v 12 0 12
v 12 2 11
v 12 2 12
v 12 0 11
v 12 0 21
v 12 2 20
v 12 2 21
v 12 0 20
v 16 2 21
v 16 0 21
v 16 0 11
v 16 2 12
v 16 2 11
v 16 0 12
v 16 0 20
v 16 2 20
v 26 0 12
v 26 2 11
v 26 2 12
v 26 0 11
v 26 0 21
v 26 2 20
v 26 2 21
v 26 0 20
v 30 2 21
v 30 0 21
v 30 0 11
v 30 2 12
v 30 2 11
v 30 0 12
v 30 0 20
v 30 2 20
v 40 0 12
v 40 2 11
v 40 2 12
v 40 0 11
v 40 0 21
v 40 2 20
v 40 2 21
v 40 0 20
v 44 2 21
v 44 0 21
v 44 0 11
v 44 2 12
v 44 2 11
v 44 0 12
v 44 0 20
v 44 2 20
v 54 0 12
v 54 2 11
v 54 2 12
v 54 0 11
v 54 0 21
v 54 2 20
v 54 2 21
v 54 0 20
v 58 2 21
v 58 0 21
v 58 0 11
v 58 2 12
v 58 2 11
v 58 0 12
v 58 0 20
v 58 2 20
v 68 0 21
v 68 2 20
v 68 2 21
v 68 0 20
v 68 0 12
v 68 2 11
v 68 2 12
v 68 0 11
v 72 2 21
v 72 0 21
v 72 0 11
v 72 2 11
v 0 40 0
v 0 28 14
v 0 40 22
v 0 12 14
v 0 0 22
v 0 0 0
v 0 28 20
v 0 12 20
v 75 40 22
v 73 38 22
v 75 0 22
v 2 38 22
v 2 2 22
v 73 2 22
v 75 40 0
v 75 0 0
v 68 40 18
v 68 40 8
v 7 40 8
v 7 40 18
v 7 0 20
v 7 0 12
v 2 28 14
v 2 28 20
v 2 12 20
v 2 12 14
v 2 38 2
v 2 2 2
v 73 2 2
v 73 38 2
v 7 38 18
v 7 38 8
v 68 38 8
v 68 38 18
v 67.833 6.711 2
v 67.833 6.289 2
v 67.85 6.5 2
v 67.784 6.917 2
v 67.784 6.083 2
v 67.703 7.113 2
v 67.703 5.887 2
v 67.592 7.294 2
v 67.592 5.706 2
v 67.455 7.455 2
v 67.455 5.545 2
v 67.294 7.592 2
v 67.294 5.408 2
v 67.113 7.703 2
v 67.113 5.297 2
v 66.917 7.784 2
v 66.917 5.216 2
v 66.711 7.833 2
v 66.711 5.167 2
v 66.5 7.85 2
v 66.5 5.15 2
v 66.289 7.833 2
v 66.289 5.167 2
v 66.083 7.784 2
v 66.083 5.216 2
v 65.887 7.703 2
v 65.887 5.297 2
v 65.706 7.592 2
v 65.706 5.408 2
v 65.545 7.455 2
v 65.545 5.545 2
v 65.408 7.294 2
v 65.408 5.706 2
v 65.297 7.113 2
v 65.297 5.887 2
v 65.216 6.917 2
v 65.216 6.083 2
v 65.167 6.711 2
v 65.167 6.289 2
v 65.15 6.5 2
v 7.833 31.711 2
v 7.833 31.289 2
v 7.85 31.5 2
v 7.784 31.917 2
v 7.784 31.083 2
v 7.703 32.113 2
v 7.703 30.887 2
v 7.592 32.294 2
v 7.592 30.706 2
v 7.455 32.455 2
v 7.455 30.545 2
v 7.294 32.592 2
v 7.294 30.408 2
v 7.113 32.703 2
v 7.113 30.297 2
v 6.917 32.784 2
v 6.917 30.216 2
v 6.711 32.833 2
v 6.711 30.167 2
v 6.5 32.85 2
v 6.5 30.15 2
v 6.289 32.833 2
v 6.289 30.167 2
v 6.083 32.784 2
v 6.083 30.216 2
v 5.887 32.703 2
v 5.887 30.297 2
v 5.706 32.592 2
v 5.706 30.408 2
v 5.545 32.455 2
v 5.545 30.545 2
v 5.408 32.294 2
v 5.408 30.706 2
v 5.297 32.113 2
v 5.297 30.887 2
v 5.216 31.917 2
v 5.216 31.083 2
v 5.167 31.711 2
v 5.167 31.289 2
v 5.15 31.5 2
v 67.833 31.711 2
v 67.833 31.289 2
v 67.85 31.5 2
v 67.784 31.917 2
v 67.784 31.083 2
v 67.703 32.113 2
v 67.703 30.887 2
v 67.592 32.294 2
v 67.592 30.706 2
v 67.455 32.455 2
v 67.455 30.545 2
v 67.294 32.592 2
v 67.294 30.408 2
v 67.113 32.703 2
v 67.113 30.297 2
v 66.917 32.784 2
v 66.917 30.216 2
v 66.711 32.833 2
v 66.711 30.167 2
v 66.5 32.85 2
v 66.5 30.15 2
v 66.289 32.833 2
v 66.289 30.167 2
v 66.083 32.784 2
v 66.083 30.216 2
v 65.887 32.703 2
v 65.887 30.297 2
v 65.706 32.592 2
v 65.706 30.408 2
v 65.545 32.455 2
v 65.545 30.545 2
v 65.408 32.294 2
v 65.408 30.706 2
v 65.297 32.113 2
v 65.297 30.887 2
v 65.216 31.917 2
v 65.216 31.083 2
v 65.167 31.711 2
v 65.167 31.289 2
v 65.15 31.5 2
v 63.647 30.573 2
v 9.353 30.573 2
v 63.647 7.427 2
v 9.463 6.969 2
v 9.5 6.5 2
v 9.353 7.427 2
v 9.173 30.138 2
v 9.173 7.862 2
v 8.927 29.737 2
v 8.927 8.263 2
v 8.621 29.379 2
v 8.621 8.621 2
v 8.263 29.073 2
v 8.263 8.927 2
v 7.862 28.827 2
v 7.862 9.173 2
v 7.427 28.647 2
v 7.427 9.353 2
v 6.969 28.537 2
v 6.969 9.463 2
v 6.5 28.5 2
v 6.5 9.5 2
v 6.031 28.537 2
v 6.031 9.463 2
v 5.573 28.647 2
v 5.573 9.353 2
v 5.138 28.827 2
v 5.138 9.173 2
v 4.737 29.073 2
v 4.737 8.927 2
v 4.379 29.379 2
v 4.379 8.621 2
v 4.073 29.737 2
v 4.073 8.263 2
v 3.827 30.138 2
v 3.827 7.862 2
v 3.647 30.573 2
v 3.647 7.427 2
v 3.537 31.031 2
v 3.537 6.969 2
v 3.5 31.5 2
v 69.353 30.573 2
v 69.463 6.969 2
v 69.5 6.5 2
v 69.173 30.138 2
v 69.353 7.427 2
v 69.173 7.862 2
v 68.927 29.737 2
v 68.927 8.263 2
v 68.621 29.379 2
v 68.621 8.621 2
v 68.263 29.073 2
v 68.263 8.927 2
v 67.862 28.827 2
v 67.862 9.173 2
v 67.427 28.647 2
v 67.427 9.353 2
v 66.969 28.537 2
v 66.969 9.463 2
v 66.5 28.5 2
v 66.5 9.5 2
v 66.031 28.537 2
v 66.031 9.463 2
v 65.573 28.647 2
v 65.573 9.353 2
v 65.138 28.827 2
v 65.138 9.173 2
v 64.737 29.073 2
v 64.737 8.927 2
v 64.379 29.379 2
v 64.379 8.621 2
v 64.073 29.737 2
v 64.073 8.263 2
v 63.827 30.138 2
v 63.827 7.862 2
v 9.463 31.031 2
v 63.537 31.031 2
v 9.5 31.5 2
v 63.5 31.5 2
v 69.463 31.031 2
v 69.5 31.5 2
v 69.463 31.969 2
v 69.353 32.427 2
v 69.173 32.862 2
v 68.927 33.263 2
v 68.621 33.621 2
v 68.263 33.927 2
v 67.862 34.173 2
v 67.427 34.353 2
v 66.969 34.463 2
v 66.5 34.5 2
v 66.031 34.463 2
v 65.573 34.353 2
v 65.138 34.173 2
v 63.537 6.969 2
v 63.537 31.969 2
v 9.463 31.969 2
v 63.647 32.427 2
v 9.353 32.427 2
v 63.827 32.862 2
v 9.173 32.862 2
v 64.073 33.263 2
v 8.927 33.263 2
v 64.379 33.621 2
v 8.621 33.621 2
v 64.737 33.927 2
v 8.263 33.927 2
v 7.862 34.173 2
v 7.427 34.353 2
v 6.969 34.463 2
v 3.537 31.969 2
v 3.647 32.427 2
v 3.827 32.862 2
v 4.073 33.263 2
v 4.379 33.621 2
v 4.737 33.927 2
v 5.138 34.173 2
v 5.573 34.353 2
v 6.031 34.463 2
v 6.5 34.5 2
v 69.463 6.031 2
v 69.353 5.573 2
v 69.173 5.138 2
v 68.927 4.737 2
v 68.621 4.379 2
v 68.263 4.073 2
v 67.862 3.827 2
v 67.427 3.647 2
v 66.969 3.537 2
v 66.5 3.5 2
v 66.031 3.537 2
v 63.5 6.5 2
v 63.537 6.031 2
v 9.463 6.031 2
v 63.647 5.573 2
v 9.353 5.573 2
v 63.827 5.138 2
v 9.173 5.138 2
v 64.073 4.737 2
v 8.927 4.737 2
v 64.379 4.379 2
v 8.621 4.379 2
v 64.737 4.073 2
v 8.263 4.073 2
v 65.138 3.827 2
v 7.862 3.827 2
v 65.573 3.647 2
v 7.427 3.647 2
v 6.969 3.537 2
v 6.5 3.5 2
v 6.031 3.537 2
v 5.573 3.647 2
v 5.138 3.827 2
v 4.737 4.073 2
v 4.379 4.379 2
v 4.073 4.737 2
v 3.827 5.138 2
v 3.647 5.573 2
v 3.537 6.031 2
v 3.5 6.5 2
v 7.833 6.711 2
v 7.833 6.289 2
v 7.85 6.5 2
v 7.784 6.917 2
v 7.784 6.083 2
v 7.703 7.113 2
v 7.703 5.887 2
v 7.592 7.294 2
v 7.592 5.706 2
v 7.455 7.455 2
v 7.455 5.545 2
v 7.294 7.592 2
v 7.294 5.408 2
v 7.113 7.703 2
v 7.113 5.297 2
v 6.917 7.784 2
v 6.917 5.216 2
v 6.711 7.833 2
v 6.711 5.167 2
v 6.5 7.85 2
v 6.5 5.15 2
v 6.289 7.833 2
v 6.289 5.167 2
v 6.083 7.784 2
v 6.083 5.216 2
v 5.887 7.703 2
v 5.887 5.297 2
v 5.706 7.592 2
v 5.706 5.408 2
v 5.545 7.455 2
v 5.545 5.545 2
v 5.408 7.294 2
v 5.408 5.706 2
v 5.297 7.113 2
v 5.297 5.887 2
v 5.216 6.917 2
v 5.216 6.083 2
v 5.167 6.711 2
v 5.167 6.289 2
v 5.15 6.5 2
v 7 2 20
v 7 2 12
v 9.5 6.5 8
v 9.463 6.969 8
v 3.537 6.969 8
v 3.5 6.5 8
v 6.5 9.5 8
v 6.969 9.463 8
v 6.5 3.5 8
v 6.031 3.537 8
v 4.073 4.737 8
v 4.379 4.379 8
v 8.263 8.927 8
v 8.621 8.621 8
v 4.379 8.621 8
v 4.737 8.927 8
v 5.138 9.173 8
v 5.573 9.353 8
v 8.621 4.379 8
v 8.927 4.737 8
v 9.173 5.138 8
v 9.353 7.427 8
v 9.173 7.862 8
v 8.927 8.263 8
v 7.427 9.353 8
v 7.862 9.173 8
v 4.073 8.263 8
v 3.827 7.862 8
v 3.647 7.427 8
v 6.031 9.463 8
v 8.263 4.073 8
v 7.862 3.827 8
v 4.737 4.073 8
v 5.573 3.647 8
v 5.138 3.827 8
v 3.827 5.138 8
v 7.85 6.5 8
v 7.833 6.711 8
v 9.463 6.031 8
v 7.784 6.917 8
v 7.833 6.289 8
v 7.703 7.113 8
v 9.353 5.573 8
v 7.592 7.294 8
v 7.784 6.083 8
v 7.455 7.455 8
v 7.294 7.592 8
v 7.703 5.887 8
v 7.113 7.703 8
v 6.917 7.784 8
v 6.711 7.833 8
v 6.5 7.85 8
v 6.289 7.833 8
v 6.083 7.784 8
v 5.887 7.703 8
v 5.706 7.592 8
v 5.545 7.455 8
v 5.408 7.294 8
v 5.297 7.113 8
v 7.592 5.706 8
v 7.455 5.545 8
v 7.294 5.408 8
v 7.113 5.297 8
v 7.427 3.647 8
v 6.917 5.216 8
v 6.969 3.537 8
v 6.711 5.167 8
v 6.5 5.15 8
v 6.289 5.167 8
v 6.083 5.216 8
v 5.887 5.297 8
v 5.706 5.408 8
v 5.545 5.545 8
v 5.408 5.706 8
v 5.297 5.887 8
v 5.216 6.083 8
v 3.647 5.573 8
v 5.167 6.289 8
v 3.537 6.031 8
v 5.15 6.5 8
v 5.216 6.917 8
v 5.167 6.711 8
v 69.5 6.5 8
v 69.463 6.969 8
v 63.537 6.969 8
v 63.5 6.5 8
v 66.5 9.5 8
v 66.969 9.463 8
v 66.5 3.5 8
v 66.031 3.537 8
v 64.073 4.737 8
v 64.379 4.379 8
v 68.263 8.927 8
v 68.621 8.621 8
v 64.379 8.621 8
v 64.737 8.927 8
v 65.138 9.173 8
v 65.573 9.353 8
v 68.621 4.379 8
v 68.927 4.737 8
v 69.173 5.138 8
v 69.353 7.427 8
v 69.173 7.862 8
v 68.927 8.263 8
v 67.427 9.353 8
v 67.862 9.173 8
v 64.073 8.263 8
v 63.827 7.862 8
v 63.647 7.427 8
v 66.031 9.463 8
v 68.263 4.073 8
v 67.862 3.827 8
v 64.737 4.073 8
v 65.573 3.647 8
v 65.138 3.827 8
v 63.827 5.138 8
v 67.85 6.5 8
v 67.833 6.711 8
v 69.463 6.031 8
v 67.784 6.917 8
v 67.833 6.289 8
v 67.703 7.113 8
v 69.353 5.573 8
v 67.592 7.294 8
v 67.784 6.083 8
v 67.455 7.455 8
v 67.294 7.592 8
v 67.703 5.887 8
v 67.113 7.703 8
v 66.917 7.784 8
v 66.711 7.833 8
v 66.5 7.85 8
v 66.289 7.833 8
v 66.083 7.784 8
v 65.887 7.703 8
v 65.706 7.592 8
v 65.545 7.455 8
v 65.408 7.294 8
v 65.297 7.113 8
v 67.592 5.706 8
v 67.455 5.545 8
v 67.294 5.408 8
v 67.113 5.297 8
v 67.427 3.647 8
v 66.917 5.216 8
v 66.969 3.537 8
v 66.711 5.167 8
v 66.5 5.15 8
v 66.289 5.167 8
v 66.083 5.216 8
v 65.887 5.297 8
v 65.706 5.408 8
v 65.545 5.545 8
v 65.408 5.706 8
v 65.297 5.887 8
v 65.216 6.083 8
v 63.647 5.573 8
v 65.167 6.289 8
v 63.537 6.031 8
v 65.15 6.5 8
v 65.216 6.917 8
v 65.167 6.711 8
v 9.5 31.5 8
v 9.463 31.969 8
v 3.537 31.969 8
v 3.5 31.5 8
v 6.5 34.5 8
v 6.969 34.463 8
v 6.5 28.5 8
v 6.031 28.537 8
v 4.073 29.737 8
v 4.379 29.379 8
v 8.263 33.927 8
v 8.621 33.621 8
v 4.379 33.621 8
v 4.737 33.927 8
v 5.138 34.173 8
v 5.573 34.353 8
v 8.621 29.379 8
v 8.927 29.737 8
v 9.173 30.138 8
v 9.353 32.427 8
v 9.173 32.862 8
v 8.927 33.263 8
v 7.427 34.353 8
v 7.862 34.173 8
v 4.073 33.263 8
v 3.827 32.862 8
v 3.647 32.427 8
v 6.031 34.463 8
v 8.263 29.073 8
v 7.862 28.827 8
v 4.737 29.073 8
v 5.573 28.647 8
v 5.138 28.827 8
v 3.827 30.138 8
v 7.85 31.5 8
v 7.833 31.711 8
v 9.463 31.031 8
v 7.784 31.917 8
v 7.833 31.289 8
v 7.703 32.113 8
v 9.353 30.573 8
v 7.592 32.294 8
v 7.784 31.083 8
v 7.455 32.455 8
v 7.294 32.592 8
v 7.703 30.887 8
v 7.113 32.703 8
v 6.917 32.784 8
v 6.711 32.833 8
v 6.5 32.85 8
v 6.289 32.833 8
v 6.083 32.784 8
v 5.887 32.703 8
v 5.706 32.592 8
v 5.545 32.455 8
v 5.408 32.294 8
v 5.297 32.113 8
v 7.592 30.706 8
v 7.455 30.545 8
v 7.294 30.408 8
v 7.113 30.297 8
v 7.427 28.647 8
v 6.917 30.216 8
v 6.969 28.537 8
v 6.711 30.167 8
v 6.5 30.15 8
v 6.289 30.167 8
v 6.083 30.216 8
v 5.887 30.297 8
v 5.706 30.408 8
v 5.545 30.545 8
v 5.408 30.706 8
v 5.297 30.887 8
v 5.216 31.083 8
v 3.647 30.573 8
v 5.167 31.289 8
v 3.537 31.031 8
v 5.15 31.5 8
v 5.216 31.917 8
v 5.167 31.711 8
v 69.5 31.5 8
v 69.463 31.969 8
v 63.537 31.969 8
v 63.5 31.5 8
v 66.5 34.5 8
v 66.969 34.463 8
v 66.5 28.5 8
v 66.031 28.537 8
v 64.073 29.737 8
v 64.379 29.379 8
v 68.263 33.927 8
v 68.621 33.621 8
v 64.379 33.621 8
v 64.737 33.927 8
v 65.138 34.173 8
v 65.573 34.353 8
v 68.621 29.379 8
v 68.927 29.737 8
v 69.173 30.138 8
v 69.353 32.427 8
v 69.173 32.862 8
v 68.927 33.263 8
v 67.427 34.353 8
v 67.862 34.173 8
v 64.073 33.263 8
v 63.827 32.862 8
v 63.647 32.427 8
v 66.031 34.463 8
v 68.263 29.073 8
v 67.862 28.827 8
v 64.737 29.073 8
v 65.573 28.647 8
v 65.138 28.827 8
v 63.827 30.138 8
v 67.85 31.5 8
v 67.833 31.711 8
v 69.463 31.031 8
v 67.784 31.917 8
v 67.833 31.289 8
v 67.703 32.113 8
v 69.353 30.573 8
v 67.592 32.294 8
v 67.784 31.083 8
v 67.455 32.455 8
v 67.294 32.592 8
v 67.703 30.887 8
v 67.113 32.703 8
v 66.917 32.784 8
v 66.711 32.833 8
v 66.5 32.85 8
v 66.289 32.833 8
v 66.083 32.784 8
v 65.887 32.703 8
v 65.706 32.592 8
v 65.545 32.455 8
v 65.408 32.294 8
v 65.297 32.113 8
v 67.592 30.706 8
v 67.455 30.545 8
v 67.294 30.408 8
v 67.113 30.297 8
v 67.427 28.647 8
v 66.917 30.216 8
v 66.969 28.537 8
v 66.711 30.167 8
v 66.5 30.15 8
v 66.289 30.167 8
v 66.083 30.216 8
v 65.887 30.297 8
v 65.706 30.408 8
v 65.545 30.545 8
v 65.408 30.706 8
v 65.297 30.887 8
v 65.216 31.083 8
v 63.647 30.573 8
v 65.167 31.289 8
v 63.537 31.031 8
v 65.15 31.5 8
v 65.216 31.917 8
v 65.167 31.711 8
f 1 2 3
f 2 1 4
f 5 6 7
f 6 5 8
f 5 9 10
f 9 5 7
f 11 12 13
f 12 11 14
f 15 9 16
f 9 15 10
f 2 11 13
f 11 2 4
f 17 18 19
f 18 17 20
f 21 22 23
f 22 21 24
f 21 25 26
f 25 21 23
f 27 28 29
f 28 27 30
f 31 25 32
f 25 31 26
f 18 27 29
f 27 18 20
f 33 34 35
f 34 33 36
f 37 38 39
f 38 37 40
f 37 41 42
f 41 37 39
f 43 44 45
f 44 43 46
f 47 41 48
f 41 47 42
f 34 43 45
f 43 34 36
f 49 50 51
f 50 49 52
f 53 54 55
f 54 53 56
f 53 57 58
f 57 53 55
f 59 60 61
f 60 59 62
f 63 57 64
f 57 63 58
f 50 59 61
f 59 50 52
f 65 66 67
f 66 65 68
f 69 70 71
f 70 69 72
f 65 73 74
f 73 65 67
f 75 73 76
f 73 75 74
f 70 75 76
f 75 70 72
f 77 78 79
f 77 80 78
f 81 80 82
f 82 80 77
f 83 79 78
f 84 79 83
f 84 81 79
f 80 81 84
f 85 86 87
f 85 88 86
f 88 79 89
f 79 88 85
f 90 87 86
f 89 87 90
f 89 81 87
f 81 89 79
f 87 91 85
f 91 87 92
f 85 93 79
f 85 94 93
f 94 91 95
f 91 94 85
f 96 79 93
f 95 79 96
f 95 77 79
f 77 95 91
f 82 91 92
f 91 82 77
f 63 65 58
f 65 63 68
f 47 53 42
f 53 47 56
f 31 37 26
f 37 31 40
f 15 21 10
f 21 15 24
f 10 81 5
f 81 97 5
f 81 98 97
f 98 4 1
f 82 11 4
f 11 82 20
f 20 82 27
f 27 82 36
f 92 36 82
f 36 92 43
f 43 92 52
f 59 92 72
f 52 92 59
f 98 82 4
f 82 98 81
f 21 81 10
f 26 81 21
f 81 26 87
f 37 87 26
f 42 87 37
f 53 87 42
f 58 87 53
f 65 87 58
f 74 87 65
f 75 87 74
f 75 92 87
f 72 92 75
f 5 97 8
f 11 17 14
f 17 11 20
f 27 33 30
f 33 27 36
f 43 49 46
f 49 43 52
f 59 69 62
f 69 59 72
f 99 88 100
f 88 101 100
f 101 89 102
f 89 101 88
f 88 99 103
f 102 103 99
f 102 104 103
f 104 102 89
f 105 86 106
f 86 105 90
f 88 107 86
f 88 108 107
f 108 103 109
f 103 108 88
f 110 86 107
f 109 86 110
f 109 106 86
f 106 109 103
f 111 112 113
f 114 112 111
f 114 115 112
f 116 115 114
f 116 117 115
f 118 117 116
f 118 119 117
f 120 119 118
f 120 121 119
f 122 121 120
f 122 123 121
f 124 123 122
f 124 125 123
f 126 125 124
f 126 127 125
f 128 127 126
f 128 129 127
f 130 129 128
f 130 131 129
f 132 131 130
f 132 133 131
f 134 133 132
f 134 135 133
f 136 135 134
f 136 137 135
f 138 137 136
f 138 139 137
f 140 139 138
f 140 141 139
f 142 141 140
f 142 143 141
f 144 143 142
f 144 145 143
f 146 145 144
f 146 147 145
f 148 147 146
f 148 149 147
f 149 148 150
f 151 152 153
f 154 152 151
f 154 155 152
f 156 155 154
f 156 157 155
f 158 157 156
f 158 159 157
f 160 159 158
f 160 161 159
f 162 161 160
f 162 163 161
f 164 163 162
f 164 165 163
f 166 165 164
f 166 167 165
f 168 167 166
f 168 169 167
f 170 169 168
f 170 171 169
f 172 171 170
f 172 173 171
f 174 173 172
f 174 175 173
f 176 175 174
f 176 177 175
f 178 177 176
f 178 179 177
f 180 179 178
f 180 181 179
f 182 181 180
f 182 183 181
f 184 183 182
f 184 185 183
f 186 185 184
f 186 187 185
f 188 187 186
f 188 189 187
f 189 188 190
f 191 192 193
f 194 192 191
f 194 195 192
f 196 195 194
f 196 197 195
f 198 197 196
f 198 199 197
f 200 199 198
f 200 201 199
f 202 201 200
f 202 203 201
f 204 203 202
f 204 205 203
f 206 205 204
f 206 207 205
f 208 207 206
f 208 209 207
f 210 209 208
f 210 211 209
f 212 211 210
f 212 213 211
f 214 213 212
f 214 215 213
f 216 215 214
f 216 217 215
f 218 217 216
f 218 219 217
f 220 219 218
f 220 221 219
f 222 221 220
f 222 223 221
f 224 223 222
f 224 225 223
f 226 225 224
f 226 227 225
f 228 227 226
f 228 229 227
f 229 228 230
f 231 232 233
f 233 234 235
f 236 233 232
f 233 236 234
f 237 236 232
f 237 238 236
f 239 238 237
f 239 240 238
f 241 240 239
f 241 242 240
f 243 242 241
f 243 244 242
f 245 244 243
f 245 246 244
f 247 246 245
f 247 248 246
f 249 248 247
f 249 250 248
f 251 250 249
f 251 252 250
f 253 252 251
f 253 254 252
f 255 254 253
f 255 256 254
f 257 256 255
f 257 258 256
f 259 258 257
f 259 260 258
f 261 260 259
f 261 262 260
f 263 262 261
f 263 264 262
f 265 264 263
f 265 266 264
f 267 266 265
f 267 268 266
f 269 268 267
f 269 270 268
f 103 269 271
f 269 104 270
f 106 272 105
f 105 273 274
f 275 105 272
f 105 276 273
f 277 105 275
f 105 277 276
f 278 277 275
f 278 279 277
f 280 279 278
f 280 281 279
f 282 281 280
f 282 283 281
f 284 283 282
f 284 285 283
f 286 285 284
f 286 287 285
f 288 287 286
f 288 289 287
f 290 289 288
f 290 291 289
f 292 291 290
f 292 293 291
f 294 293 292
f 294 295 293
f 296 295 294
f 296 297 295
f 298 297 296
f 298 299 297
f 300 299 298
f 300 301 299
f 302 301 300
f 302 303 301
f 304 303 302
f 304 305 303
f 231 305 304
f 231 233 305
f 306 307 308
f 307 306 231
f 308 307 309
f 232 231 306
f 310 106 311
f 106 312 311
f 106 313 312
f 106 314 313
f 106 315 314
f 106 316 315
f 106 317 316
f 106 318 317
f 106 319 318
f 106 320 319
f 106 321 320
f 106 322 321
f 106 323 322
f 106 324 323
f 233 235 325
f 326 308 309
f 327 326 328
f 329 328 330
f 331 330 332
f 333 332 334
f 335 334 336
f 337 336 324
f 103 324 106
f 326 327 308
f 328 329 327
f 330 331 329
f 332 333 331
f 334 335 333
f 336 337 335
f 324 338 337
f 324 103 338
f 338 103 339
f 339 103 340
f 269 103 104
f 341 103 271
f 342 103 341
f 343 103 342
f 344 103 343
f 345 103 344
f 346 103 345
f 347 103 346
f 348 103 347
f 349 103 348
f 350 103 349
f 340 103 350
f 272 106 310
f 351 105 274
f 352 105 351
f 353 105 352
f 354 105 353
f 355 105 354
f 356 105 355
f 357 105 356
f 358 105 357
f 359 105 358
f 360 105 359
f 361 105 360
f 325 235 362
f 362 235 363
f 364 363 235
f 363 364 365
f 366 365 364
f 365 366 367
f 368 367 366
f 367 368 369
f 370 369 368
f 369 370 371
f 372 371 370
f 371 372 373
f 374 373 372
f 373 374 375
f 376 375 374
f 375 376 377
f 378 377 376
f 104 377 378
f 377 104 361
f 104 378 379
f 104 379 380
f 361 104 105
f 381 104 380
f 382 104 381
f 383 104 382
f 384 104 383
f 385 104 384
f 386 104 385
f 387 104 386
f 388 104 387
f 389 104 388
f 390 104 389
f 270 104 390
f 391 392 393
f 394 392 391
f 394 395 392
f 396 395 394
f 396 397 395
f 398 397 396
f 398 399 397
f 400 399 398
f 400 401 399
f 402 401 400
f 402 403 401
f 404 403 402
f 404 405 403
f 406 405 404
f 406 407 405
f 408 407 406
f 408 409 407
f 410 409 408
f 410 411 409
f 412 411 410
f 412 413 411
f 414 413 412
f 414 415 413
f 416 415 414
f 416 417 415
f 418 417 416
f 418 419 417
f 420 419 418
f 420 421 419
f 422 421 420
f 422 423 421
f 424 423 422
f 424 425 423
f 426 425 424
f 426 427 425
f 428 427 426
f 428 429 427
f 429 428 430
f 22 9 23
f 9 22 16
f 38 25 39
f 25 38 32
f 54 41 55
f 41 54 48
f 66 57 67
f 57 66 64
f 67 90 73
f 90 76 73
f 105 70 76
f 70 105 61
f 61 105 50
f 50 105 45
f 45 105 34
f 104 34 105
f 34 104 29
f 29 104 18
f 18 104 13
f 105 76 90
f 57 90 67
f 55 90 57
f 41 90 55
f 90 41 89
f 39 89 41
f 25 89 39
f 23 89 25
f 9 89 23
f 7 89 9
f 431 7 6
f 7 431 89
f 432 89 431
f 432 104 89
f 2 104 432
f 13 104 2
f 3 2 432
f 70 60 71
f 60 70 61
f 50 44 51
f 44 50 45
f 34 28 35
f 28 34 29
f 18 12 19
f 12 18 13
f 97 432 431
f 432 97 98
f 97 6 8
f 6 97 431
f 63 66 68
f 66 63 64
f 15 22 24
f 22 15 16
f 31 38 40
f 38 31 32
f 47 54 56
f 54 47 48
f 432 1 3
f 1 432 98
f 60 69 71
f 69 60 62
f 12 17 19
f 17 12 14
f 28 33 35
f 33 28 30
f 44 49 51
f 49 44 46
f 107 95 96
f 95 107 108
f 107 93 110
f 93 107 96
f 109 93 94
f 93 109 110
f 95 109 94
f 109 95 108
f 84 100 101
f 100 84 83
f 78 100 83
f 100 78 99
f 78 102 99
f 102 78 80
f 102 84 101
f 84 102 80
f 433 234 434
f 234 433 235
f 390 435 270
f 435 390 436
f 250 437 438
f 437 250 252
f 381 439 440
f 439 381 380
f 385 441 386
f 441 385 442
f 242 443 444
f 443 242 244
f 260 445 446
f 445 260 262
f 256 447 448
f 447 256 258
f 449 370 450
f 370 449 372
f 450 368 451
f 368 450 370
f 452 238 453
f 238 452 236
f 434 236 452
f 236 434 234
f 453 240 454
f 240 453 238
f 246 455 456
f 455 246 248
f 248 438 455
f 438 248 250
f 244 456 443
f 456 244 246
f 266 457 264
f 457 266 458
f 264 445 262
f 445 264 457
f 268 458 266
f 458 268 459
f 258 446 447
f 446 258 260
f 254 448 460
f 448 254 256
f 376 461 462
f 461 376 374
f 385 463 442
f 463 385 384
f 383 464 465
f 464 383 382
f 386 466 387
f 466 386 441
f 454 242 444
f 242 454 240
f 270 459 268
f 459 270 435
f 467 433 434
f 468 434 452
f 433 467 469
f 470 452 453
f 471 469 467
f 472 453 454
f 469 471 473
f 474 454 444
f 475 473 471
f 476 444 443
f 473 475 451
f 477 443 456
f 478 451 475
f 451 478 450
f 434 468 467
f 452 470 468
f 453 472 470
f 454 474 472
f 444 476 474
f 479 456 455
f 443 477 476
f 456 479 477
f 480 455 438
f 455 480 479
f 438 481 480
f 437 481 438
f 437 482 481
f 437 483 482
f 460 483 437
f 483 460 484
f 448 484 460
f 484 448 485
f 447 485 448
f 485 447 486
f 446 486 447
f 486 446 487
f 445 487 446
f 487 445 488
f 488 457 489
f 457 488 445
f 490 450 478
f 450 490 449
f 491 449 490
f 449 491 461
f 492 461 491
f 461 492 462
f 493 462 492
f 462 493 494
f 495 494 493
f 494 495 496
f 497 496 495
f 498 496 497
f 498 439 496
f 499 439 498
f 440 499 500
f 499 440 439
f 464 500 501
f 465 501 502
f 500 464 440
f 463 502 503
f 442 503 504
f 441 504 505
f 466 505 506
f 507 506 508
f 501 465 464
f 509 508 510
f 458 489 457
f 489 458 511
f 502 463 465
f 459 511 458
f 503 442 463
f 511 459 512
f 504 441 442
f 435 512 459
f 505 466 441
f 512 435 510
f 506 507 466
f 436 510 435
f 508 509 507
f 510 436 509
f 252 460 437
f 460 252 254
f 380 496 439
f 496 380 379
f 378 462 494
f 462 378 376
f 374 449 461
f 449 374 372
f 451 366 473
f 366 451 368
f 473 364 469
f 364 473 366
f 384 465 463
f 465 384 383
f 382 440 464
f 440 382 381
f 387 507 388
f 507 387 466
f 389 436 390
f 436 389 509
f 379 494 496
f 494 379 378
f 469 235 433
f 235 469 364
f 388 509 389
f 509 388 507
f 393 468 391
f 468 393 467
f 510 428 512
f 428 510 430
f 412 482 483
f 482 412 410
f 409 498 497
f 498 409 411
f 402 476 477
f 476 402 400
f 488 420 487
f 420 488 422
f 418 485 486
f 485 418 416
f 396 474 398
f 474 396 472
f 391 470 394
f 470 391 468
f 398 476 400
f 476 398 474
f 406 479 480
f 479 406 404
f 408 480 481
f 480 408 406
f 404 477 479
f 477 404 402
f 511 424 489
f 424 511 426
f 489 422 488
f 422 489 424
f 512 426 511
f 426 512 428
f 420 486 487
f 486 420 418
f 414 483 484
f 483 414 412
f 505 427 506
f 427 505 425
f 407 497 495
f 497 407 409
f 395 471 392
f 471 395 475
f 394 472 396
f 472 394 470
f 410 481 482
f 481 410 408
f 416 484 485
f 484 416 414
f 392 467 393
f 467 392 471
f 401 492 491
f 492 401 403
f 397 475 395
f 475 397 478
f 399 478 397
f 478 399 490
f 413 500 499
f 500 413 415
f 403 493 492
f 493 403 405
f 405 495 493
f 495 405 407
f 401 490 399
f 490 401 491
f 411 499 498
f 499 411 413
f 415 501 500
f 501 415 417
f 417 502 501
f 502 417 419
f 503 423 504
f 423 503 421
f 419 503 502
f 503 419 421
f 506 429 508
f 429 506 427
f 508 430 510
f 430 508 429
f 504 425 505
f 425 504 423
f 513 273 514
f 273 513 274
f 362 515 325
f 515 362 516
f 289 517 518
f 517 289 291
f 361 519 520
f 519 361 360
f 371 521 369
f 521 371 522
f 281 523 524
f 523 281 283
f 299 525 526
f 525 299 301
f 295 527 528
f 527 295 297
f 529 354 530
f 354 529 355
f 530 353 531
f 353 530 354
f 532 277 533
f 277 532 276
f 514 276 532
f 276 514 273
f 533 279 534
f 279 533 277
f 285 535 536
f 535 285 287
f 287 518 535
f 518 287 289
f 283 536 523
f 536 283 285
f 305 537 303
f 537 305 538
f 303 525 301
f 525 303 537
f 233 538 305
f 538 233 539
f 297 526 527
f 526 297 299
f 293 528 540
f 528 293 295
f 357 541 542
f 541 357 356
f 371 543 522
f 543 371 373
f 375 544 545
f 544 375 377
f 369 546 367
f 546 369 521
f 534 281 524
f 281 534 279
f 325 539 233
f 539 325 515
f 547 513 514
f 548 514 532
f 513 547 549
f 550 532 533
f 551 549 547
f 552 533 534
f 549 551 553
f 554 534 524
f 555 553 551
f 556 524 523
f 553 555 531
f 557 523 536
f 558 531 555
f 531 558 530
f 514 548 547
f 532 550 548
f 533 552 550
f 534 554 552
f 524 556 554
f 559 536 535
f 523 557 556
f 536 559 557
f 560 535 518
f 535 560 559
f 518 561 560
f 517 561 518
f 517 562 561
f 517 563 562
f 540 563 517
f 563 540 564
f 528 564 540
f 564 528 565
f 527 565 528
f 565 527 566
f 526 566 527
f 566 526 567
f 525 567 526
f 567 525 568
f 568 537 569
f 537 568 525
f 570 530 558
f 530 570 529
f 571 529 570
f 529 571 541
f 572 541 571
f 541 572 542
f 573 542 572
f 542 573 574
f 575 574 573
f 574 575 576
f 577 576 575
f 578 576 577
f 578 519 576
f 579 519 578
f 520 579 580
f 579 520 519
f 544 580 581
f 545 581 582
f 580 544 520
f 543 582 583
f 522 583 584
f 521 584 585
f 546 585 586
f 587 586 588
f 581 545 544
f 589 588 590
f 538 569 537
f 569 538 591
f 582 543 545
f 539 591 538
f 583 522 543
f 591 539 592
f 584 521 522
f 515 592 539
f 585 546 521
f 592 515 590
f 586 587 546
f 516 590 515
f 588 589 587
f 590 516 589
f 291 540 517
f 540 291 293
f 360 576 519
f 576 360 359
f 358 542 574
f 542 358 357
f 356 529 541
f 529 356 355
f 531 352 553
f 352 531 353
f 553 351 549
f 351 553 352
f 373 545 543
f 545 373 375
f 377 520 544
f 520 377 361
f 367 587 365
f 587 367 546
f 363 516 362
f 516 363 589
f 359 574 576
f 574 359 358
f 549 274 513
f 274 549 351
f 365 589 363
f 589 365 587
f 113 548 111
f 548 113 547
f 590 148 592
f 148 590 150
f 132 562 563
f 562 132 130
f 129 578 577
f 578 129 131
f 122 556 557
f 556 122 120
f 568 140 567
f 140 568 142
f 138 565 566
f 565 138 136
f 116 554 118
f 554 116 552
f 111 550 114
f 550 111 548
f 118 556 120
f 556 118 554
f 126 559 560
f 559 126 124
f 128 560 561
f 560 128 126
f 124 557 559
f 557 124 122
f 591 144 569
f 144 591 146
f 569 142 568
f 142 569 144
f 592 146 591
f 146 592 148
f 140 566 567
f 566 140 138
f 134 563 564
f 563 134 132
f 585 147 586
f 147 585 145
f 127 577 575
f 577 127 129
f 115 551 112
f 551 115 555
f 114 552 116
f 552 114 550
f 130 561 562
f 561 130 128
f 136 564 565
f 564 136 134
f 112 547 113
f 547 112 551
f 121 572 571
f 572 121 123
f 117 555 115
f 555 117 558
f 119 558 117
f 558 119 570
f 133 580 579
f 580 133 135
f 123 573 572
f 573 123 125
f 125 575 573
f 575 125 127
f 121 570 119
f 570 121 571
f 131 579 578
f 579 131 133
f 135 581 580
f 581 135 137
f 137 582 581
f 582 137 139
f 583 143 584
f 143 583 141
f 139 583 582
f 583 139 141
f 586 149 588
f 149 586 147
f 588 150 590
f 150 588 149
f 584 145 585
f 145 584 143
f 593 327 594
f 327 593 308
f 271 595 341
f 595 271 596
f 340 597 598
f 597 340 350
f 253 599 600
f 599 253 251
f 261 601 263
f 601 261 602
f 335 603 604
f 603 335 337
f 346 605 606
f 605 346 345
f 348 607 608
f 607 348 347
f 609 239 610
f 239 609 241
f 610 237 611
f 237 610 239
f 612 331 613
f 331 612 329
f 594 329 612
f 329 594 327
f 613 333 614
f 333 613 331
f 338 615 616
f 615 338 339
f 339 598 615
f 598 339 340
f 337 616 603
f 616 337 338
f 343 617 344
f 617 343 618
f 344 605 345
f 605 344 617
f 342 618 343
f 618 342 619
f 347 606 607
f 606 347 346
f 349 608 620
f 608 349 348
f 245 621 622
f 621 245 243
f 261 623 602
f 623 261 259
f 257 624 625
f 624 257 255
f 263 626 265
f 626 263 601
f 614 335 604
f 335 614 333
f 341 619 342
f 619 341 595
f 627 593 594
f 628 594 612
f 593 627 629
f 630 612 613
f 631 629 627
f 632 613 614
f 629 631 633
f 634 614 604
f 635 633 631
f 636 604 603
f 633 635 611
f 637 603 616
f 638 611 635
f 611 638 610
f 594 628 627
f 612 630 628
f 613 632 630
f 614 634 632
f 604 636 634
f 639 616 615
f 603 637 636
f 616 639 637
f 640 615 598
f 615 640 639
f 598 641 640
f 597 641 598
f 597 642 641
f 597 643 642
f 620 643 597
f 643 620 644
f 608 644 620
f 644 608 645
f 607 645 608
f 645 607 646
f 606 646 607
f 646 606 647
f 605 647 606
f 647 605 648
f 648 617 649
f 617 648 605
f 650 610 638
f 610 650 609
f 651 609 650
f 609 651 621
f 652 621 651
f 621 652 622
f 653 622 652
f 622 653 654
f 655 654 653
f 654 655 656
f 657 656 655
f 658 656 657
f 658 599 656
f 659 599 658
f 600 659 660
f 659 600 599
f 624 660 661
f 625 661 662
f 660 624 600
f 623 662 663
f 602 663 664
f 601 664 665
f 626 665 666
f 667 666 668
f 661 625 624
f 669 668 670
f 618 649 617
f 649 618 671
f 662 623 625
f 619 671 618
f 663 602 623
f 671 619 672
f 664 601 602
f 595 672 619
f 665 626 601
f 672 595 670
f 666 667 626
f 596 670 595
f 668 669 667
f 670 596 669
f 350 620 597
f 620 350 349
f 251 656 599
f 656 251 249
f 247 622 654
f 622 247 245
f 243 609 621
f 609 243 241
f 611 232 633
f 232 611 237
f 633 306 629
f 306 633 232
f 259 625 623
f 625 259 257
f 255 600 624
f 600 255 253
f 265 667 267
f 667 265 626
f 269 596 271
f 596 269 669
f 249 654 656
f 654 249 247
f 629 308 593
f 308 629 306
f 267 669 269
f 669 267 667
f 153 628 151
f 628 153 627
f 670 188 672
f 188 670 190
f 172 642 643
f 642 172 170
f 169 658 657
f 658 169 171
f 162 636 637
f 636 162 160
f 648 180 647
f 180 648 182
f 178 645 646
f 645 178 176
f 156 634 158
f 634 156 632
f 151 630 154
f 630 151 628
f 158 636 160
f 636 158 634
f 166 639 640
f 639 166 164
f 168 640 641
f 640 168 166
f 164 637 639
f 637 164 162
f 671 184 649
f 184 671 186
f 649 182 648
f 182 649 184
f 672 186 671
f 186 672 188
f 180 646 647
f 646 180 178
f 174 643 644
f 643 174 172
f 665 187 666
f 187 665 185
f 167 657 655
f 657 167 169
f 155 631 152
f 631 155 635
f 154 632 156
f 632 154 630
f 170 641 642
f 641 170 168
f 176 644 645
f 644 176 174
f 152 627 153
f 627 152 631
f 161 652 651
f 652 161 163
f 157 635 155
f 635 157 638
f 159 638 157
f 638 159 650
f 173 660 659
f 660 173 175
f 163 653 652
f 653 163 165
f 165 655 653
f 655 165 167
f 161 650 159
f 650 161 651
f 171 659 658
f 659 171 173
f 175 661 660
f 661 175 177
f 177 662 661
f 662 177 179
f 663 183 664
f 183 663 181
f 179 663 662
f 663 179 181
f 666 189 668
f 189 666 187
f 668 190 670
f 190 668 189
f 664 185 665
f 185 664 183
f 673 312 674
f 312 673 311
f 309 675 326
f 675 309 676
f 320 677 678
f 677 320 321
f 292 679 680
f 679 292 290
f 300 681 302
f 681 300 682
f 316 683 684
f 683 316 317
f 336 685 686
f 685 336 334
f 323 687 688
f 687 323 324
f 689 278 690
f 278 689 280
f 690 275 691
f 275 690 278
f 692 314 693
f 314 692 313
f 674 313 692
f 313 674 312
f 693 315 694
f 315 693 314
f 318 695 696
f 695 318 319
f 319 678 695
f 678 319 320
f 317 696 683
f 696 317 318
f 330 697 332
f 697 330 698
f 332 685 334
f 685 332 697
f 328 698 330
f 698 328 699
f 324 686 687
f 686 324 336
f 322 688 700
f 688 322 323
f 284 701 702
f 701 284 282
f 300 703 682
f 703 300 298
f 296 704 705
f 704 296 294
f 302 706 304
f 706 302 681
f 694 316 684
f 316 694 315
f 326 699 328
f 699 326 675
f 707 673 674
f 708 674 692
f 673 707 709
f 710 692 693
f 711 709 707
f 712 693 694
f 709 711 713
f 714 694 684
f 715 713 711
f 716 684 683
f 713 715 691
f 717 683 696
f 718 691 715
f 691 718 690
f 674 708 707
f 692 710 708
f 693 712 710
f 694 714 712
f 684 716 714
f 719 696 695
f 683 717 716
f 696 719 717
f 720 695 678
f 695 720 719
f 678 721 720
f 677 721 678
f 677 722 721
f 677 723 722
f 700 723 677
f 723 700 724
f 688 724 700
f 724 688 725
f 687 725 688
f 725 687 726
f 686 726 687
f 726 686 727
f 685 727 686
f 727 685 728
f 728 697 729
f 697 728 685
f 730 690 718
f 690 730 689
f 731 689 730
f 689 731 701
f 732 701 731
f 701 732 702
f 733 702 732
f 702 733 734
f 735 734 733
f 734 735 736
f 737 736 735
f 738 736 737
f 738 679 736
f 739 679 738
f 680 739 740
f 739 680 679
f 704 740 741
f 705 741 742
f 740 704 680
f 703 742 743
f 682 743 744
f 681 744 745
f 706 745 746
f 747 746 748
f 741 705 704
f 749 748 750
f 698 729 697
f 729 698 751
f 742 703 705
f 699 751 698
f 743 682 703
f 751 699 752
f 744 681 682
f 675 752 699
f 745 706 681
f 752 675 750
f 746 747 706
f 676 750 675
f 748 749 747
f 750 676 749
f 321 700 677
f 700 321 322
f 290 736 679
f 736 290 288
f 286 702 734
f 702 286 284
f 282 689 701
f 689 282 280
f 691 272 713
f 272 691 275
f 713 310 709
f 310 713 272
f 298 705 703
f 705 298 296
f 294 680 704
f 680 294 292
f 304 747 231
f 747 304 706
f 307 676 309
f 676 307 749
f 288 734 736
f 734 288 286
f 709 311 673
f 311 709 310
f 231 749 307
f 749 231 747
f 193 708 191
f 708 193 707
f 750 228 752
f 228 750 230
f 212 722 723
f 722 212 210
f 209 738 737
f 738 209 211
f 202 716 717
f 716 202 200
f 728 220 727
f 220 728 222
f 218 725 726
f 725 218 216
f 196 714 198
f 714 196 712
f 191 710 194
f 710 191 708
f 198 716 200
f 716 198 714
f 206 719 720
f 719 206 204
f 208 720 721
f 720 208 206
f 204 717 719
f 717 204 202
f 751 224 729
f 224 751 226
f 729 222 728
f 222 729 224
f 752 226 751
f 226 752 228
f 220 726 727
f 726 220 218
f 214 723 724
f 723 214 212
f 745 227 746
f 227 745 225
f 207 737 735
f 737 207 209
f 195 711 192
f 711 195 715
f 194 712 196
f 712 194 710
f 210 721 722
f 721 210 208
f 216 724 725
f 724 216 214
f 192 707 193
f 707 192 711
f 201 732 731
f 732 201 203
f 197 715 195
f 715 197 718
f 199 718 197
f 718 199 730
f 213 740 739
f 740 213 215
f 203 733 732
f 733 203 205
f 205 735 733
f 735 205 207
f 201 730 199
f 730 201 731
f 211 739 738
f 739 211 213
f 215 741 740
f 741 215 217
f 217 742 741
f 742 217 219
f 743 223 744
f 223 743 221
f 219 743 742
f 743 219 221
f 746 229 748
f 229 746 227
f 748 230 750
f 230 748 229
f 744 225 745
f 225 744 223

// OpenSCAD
// electronics_enclosure.scad
//
// A ventilated box sized for the Raspberry Pi Zero 2 W plus its wiring,
// meant to sit inside the ribcage. Standoffs match the Zero's mounting
// holes; slots on the sides let servo/LED/sensor wires and the USB audio
// dongle pass through without needing extra drilled holes later.
//
// PRINT SETTINGS: PLA or PETG, 20% infill, supports needed only for the
// standoffs' overhang if you print in one piece — or print the lid
// separately (recommended) to avoid supports entirely.

// Pi Zero 2 W board: 65mm x 30mm, mounting holes 3.5mm from each edge corner
board_l = 65.0;
board_w = 30.0;
hole_inset = 3.5;
hole_d = 2.7;          // clearance for M2.5 standoffs/screws

wall = 2.0;
box_h = 22.0;           // interior clearance above the board for the camera
                         // ribbon connector and GPIO header
lid_h = 3.0;

standoff_od = 6.0;
standoff_h  = 6.0;      // lifts the board off the floor for wire clearance

$fn = 40;

module standoff(x, y) {
    translate([x, y, wall])
        difference() {
            cylinder(h = standoff_h, d = standoff_od);
            translate([0,0,-1]) cylinder(h = standoff_h+2, d = hole_d);
        }
}

module box_body() {
    outer_l = board_l + wall*2 + 6;
    outer_w = board_w + wall*2 + 6;

    difference() {
        cube([outer_l, outer_w, box_h]);
        translate([wall, wall, wall])
            cube([outer_l - wall*2, outer_w - wall*2, box_h]);

        // GPIO header access slot along one long edge (ribbon or jumper
        // wires exit here toward the servos/LEDs/sensors)
        translate([wall + 5, -1, box_h - 10])
            cube([outer_l - wall*2 - 10, wall + 2, 8]);

        // USB audio dongle + micro-USB power cable exit slot, opposite edge
        translate([wall + 5, outer_w - wall - 1, box_h - 14])
            cube([outer_l - wall*2 - 10, wall + 2, 10]);

        // camera ribbon exit slot, short edge
        translate([-1, outer_w/2 - 8, box_h - 8])
            cube([wall + 2, 16, 6]);

        // ventilation slots on the lid-facing top rim (simple slits)
        for (i = [0:5])
            translate([12 + i*14, -1, box_h/2])
                cube([4, wall+2, 10]);
    }

    standoff(hole_inset + 3, hole_inset + 3);
    standoff(outer_l - wall - hole_inset - 3, hole_inset + 3);
    standoff(hole_inset + 3, outer_w - wall - hole_inset - 3);
    standoff(outer_l - wall - hole_inset - 3, outer_w - wall - hole_inset - 3);
}

box_body();

// Print a matching flat lid separately:
//   cube([outer_l, outer_w, lid_h])
// sized to friction-fit or be held with two small screws into the two
// standoffs nearest the lid opening — adjust to taste, this enclosure is
// deliberately simple so it's easy to modify.
